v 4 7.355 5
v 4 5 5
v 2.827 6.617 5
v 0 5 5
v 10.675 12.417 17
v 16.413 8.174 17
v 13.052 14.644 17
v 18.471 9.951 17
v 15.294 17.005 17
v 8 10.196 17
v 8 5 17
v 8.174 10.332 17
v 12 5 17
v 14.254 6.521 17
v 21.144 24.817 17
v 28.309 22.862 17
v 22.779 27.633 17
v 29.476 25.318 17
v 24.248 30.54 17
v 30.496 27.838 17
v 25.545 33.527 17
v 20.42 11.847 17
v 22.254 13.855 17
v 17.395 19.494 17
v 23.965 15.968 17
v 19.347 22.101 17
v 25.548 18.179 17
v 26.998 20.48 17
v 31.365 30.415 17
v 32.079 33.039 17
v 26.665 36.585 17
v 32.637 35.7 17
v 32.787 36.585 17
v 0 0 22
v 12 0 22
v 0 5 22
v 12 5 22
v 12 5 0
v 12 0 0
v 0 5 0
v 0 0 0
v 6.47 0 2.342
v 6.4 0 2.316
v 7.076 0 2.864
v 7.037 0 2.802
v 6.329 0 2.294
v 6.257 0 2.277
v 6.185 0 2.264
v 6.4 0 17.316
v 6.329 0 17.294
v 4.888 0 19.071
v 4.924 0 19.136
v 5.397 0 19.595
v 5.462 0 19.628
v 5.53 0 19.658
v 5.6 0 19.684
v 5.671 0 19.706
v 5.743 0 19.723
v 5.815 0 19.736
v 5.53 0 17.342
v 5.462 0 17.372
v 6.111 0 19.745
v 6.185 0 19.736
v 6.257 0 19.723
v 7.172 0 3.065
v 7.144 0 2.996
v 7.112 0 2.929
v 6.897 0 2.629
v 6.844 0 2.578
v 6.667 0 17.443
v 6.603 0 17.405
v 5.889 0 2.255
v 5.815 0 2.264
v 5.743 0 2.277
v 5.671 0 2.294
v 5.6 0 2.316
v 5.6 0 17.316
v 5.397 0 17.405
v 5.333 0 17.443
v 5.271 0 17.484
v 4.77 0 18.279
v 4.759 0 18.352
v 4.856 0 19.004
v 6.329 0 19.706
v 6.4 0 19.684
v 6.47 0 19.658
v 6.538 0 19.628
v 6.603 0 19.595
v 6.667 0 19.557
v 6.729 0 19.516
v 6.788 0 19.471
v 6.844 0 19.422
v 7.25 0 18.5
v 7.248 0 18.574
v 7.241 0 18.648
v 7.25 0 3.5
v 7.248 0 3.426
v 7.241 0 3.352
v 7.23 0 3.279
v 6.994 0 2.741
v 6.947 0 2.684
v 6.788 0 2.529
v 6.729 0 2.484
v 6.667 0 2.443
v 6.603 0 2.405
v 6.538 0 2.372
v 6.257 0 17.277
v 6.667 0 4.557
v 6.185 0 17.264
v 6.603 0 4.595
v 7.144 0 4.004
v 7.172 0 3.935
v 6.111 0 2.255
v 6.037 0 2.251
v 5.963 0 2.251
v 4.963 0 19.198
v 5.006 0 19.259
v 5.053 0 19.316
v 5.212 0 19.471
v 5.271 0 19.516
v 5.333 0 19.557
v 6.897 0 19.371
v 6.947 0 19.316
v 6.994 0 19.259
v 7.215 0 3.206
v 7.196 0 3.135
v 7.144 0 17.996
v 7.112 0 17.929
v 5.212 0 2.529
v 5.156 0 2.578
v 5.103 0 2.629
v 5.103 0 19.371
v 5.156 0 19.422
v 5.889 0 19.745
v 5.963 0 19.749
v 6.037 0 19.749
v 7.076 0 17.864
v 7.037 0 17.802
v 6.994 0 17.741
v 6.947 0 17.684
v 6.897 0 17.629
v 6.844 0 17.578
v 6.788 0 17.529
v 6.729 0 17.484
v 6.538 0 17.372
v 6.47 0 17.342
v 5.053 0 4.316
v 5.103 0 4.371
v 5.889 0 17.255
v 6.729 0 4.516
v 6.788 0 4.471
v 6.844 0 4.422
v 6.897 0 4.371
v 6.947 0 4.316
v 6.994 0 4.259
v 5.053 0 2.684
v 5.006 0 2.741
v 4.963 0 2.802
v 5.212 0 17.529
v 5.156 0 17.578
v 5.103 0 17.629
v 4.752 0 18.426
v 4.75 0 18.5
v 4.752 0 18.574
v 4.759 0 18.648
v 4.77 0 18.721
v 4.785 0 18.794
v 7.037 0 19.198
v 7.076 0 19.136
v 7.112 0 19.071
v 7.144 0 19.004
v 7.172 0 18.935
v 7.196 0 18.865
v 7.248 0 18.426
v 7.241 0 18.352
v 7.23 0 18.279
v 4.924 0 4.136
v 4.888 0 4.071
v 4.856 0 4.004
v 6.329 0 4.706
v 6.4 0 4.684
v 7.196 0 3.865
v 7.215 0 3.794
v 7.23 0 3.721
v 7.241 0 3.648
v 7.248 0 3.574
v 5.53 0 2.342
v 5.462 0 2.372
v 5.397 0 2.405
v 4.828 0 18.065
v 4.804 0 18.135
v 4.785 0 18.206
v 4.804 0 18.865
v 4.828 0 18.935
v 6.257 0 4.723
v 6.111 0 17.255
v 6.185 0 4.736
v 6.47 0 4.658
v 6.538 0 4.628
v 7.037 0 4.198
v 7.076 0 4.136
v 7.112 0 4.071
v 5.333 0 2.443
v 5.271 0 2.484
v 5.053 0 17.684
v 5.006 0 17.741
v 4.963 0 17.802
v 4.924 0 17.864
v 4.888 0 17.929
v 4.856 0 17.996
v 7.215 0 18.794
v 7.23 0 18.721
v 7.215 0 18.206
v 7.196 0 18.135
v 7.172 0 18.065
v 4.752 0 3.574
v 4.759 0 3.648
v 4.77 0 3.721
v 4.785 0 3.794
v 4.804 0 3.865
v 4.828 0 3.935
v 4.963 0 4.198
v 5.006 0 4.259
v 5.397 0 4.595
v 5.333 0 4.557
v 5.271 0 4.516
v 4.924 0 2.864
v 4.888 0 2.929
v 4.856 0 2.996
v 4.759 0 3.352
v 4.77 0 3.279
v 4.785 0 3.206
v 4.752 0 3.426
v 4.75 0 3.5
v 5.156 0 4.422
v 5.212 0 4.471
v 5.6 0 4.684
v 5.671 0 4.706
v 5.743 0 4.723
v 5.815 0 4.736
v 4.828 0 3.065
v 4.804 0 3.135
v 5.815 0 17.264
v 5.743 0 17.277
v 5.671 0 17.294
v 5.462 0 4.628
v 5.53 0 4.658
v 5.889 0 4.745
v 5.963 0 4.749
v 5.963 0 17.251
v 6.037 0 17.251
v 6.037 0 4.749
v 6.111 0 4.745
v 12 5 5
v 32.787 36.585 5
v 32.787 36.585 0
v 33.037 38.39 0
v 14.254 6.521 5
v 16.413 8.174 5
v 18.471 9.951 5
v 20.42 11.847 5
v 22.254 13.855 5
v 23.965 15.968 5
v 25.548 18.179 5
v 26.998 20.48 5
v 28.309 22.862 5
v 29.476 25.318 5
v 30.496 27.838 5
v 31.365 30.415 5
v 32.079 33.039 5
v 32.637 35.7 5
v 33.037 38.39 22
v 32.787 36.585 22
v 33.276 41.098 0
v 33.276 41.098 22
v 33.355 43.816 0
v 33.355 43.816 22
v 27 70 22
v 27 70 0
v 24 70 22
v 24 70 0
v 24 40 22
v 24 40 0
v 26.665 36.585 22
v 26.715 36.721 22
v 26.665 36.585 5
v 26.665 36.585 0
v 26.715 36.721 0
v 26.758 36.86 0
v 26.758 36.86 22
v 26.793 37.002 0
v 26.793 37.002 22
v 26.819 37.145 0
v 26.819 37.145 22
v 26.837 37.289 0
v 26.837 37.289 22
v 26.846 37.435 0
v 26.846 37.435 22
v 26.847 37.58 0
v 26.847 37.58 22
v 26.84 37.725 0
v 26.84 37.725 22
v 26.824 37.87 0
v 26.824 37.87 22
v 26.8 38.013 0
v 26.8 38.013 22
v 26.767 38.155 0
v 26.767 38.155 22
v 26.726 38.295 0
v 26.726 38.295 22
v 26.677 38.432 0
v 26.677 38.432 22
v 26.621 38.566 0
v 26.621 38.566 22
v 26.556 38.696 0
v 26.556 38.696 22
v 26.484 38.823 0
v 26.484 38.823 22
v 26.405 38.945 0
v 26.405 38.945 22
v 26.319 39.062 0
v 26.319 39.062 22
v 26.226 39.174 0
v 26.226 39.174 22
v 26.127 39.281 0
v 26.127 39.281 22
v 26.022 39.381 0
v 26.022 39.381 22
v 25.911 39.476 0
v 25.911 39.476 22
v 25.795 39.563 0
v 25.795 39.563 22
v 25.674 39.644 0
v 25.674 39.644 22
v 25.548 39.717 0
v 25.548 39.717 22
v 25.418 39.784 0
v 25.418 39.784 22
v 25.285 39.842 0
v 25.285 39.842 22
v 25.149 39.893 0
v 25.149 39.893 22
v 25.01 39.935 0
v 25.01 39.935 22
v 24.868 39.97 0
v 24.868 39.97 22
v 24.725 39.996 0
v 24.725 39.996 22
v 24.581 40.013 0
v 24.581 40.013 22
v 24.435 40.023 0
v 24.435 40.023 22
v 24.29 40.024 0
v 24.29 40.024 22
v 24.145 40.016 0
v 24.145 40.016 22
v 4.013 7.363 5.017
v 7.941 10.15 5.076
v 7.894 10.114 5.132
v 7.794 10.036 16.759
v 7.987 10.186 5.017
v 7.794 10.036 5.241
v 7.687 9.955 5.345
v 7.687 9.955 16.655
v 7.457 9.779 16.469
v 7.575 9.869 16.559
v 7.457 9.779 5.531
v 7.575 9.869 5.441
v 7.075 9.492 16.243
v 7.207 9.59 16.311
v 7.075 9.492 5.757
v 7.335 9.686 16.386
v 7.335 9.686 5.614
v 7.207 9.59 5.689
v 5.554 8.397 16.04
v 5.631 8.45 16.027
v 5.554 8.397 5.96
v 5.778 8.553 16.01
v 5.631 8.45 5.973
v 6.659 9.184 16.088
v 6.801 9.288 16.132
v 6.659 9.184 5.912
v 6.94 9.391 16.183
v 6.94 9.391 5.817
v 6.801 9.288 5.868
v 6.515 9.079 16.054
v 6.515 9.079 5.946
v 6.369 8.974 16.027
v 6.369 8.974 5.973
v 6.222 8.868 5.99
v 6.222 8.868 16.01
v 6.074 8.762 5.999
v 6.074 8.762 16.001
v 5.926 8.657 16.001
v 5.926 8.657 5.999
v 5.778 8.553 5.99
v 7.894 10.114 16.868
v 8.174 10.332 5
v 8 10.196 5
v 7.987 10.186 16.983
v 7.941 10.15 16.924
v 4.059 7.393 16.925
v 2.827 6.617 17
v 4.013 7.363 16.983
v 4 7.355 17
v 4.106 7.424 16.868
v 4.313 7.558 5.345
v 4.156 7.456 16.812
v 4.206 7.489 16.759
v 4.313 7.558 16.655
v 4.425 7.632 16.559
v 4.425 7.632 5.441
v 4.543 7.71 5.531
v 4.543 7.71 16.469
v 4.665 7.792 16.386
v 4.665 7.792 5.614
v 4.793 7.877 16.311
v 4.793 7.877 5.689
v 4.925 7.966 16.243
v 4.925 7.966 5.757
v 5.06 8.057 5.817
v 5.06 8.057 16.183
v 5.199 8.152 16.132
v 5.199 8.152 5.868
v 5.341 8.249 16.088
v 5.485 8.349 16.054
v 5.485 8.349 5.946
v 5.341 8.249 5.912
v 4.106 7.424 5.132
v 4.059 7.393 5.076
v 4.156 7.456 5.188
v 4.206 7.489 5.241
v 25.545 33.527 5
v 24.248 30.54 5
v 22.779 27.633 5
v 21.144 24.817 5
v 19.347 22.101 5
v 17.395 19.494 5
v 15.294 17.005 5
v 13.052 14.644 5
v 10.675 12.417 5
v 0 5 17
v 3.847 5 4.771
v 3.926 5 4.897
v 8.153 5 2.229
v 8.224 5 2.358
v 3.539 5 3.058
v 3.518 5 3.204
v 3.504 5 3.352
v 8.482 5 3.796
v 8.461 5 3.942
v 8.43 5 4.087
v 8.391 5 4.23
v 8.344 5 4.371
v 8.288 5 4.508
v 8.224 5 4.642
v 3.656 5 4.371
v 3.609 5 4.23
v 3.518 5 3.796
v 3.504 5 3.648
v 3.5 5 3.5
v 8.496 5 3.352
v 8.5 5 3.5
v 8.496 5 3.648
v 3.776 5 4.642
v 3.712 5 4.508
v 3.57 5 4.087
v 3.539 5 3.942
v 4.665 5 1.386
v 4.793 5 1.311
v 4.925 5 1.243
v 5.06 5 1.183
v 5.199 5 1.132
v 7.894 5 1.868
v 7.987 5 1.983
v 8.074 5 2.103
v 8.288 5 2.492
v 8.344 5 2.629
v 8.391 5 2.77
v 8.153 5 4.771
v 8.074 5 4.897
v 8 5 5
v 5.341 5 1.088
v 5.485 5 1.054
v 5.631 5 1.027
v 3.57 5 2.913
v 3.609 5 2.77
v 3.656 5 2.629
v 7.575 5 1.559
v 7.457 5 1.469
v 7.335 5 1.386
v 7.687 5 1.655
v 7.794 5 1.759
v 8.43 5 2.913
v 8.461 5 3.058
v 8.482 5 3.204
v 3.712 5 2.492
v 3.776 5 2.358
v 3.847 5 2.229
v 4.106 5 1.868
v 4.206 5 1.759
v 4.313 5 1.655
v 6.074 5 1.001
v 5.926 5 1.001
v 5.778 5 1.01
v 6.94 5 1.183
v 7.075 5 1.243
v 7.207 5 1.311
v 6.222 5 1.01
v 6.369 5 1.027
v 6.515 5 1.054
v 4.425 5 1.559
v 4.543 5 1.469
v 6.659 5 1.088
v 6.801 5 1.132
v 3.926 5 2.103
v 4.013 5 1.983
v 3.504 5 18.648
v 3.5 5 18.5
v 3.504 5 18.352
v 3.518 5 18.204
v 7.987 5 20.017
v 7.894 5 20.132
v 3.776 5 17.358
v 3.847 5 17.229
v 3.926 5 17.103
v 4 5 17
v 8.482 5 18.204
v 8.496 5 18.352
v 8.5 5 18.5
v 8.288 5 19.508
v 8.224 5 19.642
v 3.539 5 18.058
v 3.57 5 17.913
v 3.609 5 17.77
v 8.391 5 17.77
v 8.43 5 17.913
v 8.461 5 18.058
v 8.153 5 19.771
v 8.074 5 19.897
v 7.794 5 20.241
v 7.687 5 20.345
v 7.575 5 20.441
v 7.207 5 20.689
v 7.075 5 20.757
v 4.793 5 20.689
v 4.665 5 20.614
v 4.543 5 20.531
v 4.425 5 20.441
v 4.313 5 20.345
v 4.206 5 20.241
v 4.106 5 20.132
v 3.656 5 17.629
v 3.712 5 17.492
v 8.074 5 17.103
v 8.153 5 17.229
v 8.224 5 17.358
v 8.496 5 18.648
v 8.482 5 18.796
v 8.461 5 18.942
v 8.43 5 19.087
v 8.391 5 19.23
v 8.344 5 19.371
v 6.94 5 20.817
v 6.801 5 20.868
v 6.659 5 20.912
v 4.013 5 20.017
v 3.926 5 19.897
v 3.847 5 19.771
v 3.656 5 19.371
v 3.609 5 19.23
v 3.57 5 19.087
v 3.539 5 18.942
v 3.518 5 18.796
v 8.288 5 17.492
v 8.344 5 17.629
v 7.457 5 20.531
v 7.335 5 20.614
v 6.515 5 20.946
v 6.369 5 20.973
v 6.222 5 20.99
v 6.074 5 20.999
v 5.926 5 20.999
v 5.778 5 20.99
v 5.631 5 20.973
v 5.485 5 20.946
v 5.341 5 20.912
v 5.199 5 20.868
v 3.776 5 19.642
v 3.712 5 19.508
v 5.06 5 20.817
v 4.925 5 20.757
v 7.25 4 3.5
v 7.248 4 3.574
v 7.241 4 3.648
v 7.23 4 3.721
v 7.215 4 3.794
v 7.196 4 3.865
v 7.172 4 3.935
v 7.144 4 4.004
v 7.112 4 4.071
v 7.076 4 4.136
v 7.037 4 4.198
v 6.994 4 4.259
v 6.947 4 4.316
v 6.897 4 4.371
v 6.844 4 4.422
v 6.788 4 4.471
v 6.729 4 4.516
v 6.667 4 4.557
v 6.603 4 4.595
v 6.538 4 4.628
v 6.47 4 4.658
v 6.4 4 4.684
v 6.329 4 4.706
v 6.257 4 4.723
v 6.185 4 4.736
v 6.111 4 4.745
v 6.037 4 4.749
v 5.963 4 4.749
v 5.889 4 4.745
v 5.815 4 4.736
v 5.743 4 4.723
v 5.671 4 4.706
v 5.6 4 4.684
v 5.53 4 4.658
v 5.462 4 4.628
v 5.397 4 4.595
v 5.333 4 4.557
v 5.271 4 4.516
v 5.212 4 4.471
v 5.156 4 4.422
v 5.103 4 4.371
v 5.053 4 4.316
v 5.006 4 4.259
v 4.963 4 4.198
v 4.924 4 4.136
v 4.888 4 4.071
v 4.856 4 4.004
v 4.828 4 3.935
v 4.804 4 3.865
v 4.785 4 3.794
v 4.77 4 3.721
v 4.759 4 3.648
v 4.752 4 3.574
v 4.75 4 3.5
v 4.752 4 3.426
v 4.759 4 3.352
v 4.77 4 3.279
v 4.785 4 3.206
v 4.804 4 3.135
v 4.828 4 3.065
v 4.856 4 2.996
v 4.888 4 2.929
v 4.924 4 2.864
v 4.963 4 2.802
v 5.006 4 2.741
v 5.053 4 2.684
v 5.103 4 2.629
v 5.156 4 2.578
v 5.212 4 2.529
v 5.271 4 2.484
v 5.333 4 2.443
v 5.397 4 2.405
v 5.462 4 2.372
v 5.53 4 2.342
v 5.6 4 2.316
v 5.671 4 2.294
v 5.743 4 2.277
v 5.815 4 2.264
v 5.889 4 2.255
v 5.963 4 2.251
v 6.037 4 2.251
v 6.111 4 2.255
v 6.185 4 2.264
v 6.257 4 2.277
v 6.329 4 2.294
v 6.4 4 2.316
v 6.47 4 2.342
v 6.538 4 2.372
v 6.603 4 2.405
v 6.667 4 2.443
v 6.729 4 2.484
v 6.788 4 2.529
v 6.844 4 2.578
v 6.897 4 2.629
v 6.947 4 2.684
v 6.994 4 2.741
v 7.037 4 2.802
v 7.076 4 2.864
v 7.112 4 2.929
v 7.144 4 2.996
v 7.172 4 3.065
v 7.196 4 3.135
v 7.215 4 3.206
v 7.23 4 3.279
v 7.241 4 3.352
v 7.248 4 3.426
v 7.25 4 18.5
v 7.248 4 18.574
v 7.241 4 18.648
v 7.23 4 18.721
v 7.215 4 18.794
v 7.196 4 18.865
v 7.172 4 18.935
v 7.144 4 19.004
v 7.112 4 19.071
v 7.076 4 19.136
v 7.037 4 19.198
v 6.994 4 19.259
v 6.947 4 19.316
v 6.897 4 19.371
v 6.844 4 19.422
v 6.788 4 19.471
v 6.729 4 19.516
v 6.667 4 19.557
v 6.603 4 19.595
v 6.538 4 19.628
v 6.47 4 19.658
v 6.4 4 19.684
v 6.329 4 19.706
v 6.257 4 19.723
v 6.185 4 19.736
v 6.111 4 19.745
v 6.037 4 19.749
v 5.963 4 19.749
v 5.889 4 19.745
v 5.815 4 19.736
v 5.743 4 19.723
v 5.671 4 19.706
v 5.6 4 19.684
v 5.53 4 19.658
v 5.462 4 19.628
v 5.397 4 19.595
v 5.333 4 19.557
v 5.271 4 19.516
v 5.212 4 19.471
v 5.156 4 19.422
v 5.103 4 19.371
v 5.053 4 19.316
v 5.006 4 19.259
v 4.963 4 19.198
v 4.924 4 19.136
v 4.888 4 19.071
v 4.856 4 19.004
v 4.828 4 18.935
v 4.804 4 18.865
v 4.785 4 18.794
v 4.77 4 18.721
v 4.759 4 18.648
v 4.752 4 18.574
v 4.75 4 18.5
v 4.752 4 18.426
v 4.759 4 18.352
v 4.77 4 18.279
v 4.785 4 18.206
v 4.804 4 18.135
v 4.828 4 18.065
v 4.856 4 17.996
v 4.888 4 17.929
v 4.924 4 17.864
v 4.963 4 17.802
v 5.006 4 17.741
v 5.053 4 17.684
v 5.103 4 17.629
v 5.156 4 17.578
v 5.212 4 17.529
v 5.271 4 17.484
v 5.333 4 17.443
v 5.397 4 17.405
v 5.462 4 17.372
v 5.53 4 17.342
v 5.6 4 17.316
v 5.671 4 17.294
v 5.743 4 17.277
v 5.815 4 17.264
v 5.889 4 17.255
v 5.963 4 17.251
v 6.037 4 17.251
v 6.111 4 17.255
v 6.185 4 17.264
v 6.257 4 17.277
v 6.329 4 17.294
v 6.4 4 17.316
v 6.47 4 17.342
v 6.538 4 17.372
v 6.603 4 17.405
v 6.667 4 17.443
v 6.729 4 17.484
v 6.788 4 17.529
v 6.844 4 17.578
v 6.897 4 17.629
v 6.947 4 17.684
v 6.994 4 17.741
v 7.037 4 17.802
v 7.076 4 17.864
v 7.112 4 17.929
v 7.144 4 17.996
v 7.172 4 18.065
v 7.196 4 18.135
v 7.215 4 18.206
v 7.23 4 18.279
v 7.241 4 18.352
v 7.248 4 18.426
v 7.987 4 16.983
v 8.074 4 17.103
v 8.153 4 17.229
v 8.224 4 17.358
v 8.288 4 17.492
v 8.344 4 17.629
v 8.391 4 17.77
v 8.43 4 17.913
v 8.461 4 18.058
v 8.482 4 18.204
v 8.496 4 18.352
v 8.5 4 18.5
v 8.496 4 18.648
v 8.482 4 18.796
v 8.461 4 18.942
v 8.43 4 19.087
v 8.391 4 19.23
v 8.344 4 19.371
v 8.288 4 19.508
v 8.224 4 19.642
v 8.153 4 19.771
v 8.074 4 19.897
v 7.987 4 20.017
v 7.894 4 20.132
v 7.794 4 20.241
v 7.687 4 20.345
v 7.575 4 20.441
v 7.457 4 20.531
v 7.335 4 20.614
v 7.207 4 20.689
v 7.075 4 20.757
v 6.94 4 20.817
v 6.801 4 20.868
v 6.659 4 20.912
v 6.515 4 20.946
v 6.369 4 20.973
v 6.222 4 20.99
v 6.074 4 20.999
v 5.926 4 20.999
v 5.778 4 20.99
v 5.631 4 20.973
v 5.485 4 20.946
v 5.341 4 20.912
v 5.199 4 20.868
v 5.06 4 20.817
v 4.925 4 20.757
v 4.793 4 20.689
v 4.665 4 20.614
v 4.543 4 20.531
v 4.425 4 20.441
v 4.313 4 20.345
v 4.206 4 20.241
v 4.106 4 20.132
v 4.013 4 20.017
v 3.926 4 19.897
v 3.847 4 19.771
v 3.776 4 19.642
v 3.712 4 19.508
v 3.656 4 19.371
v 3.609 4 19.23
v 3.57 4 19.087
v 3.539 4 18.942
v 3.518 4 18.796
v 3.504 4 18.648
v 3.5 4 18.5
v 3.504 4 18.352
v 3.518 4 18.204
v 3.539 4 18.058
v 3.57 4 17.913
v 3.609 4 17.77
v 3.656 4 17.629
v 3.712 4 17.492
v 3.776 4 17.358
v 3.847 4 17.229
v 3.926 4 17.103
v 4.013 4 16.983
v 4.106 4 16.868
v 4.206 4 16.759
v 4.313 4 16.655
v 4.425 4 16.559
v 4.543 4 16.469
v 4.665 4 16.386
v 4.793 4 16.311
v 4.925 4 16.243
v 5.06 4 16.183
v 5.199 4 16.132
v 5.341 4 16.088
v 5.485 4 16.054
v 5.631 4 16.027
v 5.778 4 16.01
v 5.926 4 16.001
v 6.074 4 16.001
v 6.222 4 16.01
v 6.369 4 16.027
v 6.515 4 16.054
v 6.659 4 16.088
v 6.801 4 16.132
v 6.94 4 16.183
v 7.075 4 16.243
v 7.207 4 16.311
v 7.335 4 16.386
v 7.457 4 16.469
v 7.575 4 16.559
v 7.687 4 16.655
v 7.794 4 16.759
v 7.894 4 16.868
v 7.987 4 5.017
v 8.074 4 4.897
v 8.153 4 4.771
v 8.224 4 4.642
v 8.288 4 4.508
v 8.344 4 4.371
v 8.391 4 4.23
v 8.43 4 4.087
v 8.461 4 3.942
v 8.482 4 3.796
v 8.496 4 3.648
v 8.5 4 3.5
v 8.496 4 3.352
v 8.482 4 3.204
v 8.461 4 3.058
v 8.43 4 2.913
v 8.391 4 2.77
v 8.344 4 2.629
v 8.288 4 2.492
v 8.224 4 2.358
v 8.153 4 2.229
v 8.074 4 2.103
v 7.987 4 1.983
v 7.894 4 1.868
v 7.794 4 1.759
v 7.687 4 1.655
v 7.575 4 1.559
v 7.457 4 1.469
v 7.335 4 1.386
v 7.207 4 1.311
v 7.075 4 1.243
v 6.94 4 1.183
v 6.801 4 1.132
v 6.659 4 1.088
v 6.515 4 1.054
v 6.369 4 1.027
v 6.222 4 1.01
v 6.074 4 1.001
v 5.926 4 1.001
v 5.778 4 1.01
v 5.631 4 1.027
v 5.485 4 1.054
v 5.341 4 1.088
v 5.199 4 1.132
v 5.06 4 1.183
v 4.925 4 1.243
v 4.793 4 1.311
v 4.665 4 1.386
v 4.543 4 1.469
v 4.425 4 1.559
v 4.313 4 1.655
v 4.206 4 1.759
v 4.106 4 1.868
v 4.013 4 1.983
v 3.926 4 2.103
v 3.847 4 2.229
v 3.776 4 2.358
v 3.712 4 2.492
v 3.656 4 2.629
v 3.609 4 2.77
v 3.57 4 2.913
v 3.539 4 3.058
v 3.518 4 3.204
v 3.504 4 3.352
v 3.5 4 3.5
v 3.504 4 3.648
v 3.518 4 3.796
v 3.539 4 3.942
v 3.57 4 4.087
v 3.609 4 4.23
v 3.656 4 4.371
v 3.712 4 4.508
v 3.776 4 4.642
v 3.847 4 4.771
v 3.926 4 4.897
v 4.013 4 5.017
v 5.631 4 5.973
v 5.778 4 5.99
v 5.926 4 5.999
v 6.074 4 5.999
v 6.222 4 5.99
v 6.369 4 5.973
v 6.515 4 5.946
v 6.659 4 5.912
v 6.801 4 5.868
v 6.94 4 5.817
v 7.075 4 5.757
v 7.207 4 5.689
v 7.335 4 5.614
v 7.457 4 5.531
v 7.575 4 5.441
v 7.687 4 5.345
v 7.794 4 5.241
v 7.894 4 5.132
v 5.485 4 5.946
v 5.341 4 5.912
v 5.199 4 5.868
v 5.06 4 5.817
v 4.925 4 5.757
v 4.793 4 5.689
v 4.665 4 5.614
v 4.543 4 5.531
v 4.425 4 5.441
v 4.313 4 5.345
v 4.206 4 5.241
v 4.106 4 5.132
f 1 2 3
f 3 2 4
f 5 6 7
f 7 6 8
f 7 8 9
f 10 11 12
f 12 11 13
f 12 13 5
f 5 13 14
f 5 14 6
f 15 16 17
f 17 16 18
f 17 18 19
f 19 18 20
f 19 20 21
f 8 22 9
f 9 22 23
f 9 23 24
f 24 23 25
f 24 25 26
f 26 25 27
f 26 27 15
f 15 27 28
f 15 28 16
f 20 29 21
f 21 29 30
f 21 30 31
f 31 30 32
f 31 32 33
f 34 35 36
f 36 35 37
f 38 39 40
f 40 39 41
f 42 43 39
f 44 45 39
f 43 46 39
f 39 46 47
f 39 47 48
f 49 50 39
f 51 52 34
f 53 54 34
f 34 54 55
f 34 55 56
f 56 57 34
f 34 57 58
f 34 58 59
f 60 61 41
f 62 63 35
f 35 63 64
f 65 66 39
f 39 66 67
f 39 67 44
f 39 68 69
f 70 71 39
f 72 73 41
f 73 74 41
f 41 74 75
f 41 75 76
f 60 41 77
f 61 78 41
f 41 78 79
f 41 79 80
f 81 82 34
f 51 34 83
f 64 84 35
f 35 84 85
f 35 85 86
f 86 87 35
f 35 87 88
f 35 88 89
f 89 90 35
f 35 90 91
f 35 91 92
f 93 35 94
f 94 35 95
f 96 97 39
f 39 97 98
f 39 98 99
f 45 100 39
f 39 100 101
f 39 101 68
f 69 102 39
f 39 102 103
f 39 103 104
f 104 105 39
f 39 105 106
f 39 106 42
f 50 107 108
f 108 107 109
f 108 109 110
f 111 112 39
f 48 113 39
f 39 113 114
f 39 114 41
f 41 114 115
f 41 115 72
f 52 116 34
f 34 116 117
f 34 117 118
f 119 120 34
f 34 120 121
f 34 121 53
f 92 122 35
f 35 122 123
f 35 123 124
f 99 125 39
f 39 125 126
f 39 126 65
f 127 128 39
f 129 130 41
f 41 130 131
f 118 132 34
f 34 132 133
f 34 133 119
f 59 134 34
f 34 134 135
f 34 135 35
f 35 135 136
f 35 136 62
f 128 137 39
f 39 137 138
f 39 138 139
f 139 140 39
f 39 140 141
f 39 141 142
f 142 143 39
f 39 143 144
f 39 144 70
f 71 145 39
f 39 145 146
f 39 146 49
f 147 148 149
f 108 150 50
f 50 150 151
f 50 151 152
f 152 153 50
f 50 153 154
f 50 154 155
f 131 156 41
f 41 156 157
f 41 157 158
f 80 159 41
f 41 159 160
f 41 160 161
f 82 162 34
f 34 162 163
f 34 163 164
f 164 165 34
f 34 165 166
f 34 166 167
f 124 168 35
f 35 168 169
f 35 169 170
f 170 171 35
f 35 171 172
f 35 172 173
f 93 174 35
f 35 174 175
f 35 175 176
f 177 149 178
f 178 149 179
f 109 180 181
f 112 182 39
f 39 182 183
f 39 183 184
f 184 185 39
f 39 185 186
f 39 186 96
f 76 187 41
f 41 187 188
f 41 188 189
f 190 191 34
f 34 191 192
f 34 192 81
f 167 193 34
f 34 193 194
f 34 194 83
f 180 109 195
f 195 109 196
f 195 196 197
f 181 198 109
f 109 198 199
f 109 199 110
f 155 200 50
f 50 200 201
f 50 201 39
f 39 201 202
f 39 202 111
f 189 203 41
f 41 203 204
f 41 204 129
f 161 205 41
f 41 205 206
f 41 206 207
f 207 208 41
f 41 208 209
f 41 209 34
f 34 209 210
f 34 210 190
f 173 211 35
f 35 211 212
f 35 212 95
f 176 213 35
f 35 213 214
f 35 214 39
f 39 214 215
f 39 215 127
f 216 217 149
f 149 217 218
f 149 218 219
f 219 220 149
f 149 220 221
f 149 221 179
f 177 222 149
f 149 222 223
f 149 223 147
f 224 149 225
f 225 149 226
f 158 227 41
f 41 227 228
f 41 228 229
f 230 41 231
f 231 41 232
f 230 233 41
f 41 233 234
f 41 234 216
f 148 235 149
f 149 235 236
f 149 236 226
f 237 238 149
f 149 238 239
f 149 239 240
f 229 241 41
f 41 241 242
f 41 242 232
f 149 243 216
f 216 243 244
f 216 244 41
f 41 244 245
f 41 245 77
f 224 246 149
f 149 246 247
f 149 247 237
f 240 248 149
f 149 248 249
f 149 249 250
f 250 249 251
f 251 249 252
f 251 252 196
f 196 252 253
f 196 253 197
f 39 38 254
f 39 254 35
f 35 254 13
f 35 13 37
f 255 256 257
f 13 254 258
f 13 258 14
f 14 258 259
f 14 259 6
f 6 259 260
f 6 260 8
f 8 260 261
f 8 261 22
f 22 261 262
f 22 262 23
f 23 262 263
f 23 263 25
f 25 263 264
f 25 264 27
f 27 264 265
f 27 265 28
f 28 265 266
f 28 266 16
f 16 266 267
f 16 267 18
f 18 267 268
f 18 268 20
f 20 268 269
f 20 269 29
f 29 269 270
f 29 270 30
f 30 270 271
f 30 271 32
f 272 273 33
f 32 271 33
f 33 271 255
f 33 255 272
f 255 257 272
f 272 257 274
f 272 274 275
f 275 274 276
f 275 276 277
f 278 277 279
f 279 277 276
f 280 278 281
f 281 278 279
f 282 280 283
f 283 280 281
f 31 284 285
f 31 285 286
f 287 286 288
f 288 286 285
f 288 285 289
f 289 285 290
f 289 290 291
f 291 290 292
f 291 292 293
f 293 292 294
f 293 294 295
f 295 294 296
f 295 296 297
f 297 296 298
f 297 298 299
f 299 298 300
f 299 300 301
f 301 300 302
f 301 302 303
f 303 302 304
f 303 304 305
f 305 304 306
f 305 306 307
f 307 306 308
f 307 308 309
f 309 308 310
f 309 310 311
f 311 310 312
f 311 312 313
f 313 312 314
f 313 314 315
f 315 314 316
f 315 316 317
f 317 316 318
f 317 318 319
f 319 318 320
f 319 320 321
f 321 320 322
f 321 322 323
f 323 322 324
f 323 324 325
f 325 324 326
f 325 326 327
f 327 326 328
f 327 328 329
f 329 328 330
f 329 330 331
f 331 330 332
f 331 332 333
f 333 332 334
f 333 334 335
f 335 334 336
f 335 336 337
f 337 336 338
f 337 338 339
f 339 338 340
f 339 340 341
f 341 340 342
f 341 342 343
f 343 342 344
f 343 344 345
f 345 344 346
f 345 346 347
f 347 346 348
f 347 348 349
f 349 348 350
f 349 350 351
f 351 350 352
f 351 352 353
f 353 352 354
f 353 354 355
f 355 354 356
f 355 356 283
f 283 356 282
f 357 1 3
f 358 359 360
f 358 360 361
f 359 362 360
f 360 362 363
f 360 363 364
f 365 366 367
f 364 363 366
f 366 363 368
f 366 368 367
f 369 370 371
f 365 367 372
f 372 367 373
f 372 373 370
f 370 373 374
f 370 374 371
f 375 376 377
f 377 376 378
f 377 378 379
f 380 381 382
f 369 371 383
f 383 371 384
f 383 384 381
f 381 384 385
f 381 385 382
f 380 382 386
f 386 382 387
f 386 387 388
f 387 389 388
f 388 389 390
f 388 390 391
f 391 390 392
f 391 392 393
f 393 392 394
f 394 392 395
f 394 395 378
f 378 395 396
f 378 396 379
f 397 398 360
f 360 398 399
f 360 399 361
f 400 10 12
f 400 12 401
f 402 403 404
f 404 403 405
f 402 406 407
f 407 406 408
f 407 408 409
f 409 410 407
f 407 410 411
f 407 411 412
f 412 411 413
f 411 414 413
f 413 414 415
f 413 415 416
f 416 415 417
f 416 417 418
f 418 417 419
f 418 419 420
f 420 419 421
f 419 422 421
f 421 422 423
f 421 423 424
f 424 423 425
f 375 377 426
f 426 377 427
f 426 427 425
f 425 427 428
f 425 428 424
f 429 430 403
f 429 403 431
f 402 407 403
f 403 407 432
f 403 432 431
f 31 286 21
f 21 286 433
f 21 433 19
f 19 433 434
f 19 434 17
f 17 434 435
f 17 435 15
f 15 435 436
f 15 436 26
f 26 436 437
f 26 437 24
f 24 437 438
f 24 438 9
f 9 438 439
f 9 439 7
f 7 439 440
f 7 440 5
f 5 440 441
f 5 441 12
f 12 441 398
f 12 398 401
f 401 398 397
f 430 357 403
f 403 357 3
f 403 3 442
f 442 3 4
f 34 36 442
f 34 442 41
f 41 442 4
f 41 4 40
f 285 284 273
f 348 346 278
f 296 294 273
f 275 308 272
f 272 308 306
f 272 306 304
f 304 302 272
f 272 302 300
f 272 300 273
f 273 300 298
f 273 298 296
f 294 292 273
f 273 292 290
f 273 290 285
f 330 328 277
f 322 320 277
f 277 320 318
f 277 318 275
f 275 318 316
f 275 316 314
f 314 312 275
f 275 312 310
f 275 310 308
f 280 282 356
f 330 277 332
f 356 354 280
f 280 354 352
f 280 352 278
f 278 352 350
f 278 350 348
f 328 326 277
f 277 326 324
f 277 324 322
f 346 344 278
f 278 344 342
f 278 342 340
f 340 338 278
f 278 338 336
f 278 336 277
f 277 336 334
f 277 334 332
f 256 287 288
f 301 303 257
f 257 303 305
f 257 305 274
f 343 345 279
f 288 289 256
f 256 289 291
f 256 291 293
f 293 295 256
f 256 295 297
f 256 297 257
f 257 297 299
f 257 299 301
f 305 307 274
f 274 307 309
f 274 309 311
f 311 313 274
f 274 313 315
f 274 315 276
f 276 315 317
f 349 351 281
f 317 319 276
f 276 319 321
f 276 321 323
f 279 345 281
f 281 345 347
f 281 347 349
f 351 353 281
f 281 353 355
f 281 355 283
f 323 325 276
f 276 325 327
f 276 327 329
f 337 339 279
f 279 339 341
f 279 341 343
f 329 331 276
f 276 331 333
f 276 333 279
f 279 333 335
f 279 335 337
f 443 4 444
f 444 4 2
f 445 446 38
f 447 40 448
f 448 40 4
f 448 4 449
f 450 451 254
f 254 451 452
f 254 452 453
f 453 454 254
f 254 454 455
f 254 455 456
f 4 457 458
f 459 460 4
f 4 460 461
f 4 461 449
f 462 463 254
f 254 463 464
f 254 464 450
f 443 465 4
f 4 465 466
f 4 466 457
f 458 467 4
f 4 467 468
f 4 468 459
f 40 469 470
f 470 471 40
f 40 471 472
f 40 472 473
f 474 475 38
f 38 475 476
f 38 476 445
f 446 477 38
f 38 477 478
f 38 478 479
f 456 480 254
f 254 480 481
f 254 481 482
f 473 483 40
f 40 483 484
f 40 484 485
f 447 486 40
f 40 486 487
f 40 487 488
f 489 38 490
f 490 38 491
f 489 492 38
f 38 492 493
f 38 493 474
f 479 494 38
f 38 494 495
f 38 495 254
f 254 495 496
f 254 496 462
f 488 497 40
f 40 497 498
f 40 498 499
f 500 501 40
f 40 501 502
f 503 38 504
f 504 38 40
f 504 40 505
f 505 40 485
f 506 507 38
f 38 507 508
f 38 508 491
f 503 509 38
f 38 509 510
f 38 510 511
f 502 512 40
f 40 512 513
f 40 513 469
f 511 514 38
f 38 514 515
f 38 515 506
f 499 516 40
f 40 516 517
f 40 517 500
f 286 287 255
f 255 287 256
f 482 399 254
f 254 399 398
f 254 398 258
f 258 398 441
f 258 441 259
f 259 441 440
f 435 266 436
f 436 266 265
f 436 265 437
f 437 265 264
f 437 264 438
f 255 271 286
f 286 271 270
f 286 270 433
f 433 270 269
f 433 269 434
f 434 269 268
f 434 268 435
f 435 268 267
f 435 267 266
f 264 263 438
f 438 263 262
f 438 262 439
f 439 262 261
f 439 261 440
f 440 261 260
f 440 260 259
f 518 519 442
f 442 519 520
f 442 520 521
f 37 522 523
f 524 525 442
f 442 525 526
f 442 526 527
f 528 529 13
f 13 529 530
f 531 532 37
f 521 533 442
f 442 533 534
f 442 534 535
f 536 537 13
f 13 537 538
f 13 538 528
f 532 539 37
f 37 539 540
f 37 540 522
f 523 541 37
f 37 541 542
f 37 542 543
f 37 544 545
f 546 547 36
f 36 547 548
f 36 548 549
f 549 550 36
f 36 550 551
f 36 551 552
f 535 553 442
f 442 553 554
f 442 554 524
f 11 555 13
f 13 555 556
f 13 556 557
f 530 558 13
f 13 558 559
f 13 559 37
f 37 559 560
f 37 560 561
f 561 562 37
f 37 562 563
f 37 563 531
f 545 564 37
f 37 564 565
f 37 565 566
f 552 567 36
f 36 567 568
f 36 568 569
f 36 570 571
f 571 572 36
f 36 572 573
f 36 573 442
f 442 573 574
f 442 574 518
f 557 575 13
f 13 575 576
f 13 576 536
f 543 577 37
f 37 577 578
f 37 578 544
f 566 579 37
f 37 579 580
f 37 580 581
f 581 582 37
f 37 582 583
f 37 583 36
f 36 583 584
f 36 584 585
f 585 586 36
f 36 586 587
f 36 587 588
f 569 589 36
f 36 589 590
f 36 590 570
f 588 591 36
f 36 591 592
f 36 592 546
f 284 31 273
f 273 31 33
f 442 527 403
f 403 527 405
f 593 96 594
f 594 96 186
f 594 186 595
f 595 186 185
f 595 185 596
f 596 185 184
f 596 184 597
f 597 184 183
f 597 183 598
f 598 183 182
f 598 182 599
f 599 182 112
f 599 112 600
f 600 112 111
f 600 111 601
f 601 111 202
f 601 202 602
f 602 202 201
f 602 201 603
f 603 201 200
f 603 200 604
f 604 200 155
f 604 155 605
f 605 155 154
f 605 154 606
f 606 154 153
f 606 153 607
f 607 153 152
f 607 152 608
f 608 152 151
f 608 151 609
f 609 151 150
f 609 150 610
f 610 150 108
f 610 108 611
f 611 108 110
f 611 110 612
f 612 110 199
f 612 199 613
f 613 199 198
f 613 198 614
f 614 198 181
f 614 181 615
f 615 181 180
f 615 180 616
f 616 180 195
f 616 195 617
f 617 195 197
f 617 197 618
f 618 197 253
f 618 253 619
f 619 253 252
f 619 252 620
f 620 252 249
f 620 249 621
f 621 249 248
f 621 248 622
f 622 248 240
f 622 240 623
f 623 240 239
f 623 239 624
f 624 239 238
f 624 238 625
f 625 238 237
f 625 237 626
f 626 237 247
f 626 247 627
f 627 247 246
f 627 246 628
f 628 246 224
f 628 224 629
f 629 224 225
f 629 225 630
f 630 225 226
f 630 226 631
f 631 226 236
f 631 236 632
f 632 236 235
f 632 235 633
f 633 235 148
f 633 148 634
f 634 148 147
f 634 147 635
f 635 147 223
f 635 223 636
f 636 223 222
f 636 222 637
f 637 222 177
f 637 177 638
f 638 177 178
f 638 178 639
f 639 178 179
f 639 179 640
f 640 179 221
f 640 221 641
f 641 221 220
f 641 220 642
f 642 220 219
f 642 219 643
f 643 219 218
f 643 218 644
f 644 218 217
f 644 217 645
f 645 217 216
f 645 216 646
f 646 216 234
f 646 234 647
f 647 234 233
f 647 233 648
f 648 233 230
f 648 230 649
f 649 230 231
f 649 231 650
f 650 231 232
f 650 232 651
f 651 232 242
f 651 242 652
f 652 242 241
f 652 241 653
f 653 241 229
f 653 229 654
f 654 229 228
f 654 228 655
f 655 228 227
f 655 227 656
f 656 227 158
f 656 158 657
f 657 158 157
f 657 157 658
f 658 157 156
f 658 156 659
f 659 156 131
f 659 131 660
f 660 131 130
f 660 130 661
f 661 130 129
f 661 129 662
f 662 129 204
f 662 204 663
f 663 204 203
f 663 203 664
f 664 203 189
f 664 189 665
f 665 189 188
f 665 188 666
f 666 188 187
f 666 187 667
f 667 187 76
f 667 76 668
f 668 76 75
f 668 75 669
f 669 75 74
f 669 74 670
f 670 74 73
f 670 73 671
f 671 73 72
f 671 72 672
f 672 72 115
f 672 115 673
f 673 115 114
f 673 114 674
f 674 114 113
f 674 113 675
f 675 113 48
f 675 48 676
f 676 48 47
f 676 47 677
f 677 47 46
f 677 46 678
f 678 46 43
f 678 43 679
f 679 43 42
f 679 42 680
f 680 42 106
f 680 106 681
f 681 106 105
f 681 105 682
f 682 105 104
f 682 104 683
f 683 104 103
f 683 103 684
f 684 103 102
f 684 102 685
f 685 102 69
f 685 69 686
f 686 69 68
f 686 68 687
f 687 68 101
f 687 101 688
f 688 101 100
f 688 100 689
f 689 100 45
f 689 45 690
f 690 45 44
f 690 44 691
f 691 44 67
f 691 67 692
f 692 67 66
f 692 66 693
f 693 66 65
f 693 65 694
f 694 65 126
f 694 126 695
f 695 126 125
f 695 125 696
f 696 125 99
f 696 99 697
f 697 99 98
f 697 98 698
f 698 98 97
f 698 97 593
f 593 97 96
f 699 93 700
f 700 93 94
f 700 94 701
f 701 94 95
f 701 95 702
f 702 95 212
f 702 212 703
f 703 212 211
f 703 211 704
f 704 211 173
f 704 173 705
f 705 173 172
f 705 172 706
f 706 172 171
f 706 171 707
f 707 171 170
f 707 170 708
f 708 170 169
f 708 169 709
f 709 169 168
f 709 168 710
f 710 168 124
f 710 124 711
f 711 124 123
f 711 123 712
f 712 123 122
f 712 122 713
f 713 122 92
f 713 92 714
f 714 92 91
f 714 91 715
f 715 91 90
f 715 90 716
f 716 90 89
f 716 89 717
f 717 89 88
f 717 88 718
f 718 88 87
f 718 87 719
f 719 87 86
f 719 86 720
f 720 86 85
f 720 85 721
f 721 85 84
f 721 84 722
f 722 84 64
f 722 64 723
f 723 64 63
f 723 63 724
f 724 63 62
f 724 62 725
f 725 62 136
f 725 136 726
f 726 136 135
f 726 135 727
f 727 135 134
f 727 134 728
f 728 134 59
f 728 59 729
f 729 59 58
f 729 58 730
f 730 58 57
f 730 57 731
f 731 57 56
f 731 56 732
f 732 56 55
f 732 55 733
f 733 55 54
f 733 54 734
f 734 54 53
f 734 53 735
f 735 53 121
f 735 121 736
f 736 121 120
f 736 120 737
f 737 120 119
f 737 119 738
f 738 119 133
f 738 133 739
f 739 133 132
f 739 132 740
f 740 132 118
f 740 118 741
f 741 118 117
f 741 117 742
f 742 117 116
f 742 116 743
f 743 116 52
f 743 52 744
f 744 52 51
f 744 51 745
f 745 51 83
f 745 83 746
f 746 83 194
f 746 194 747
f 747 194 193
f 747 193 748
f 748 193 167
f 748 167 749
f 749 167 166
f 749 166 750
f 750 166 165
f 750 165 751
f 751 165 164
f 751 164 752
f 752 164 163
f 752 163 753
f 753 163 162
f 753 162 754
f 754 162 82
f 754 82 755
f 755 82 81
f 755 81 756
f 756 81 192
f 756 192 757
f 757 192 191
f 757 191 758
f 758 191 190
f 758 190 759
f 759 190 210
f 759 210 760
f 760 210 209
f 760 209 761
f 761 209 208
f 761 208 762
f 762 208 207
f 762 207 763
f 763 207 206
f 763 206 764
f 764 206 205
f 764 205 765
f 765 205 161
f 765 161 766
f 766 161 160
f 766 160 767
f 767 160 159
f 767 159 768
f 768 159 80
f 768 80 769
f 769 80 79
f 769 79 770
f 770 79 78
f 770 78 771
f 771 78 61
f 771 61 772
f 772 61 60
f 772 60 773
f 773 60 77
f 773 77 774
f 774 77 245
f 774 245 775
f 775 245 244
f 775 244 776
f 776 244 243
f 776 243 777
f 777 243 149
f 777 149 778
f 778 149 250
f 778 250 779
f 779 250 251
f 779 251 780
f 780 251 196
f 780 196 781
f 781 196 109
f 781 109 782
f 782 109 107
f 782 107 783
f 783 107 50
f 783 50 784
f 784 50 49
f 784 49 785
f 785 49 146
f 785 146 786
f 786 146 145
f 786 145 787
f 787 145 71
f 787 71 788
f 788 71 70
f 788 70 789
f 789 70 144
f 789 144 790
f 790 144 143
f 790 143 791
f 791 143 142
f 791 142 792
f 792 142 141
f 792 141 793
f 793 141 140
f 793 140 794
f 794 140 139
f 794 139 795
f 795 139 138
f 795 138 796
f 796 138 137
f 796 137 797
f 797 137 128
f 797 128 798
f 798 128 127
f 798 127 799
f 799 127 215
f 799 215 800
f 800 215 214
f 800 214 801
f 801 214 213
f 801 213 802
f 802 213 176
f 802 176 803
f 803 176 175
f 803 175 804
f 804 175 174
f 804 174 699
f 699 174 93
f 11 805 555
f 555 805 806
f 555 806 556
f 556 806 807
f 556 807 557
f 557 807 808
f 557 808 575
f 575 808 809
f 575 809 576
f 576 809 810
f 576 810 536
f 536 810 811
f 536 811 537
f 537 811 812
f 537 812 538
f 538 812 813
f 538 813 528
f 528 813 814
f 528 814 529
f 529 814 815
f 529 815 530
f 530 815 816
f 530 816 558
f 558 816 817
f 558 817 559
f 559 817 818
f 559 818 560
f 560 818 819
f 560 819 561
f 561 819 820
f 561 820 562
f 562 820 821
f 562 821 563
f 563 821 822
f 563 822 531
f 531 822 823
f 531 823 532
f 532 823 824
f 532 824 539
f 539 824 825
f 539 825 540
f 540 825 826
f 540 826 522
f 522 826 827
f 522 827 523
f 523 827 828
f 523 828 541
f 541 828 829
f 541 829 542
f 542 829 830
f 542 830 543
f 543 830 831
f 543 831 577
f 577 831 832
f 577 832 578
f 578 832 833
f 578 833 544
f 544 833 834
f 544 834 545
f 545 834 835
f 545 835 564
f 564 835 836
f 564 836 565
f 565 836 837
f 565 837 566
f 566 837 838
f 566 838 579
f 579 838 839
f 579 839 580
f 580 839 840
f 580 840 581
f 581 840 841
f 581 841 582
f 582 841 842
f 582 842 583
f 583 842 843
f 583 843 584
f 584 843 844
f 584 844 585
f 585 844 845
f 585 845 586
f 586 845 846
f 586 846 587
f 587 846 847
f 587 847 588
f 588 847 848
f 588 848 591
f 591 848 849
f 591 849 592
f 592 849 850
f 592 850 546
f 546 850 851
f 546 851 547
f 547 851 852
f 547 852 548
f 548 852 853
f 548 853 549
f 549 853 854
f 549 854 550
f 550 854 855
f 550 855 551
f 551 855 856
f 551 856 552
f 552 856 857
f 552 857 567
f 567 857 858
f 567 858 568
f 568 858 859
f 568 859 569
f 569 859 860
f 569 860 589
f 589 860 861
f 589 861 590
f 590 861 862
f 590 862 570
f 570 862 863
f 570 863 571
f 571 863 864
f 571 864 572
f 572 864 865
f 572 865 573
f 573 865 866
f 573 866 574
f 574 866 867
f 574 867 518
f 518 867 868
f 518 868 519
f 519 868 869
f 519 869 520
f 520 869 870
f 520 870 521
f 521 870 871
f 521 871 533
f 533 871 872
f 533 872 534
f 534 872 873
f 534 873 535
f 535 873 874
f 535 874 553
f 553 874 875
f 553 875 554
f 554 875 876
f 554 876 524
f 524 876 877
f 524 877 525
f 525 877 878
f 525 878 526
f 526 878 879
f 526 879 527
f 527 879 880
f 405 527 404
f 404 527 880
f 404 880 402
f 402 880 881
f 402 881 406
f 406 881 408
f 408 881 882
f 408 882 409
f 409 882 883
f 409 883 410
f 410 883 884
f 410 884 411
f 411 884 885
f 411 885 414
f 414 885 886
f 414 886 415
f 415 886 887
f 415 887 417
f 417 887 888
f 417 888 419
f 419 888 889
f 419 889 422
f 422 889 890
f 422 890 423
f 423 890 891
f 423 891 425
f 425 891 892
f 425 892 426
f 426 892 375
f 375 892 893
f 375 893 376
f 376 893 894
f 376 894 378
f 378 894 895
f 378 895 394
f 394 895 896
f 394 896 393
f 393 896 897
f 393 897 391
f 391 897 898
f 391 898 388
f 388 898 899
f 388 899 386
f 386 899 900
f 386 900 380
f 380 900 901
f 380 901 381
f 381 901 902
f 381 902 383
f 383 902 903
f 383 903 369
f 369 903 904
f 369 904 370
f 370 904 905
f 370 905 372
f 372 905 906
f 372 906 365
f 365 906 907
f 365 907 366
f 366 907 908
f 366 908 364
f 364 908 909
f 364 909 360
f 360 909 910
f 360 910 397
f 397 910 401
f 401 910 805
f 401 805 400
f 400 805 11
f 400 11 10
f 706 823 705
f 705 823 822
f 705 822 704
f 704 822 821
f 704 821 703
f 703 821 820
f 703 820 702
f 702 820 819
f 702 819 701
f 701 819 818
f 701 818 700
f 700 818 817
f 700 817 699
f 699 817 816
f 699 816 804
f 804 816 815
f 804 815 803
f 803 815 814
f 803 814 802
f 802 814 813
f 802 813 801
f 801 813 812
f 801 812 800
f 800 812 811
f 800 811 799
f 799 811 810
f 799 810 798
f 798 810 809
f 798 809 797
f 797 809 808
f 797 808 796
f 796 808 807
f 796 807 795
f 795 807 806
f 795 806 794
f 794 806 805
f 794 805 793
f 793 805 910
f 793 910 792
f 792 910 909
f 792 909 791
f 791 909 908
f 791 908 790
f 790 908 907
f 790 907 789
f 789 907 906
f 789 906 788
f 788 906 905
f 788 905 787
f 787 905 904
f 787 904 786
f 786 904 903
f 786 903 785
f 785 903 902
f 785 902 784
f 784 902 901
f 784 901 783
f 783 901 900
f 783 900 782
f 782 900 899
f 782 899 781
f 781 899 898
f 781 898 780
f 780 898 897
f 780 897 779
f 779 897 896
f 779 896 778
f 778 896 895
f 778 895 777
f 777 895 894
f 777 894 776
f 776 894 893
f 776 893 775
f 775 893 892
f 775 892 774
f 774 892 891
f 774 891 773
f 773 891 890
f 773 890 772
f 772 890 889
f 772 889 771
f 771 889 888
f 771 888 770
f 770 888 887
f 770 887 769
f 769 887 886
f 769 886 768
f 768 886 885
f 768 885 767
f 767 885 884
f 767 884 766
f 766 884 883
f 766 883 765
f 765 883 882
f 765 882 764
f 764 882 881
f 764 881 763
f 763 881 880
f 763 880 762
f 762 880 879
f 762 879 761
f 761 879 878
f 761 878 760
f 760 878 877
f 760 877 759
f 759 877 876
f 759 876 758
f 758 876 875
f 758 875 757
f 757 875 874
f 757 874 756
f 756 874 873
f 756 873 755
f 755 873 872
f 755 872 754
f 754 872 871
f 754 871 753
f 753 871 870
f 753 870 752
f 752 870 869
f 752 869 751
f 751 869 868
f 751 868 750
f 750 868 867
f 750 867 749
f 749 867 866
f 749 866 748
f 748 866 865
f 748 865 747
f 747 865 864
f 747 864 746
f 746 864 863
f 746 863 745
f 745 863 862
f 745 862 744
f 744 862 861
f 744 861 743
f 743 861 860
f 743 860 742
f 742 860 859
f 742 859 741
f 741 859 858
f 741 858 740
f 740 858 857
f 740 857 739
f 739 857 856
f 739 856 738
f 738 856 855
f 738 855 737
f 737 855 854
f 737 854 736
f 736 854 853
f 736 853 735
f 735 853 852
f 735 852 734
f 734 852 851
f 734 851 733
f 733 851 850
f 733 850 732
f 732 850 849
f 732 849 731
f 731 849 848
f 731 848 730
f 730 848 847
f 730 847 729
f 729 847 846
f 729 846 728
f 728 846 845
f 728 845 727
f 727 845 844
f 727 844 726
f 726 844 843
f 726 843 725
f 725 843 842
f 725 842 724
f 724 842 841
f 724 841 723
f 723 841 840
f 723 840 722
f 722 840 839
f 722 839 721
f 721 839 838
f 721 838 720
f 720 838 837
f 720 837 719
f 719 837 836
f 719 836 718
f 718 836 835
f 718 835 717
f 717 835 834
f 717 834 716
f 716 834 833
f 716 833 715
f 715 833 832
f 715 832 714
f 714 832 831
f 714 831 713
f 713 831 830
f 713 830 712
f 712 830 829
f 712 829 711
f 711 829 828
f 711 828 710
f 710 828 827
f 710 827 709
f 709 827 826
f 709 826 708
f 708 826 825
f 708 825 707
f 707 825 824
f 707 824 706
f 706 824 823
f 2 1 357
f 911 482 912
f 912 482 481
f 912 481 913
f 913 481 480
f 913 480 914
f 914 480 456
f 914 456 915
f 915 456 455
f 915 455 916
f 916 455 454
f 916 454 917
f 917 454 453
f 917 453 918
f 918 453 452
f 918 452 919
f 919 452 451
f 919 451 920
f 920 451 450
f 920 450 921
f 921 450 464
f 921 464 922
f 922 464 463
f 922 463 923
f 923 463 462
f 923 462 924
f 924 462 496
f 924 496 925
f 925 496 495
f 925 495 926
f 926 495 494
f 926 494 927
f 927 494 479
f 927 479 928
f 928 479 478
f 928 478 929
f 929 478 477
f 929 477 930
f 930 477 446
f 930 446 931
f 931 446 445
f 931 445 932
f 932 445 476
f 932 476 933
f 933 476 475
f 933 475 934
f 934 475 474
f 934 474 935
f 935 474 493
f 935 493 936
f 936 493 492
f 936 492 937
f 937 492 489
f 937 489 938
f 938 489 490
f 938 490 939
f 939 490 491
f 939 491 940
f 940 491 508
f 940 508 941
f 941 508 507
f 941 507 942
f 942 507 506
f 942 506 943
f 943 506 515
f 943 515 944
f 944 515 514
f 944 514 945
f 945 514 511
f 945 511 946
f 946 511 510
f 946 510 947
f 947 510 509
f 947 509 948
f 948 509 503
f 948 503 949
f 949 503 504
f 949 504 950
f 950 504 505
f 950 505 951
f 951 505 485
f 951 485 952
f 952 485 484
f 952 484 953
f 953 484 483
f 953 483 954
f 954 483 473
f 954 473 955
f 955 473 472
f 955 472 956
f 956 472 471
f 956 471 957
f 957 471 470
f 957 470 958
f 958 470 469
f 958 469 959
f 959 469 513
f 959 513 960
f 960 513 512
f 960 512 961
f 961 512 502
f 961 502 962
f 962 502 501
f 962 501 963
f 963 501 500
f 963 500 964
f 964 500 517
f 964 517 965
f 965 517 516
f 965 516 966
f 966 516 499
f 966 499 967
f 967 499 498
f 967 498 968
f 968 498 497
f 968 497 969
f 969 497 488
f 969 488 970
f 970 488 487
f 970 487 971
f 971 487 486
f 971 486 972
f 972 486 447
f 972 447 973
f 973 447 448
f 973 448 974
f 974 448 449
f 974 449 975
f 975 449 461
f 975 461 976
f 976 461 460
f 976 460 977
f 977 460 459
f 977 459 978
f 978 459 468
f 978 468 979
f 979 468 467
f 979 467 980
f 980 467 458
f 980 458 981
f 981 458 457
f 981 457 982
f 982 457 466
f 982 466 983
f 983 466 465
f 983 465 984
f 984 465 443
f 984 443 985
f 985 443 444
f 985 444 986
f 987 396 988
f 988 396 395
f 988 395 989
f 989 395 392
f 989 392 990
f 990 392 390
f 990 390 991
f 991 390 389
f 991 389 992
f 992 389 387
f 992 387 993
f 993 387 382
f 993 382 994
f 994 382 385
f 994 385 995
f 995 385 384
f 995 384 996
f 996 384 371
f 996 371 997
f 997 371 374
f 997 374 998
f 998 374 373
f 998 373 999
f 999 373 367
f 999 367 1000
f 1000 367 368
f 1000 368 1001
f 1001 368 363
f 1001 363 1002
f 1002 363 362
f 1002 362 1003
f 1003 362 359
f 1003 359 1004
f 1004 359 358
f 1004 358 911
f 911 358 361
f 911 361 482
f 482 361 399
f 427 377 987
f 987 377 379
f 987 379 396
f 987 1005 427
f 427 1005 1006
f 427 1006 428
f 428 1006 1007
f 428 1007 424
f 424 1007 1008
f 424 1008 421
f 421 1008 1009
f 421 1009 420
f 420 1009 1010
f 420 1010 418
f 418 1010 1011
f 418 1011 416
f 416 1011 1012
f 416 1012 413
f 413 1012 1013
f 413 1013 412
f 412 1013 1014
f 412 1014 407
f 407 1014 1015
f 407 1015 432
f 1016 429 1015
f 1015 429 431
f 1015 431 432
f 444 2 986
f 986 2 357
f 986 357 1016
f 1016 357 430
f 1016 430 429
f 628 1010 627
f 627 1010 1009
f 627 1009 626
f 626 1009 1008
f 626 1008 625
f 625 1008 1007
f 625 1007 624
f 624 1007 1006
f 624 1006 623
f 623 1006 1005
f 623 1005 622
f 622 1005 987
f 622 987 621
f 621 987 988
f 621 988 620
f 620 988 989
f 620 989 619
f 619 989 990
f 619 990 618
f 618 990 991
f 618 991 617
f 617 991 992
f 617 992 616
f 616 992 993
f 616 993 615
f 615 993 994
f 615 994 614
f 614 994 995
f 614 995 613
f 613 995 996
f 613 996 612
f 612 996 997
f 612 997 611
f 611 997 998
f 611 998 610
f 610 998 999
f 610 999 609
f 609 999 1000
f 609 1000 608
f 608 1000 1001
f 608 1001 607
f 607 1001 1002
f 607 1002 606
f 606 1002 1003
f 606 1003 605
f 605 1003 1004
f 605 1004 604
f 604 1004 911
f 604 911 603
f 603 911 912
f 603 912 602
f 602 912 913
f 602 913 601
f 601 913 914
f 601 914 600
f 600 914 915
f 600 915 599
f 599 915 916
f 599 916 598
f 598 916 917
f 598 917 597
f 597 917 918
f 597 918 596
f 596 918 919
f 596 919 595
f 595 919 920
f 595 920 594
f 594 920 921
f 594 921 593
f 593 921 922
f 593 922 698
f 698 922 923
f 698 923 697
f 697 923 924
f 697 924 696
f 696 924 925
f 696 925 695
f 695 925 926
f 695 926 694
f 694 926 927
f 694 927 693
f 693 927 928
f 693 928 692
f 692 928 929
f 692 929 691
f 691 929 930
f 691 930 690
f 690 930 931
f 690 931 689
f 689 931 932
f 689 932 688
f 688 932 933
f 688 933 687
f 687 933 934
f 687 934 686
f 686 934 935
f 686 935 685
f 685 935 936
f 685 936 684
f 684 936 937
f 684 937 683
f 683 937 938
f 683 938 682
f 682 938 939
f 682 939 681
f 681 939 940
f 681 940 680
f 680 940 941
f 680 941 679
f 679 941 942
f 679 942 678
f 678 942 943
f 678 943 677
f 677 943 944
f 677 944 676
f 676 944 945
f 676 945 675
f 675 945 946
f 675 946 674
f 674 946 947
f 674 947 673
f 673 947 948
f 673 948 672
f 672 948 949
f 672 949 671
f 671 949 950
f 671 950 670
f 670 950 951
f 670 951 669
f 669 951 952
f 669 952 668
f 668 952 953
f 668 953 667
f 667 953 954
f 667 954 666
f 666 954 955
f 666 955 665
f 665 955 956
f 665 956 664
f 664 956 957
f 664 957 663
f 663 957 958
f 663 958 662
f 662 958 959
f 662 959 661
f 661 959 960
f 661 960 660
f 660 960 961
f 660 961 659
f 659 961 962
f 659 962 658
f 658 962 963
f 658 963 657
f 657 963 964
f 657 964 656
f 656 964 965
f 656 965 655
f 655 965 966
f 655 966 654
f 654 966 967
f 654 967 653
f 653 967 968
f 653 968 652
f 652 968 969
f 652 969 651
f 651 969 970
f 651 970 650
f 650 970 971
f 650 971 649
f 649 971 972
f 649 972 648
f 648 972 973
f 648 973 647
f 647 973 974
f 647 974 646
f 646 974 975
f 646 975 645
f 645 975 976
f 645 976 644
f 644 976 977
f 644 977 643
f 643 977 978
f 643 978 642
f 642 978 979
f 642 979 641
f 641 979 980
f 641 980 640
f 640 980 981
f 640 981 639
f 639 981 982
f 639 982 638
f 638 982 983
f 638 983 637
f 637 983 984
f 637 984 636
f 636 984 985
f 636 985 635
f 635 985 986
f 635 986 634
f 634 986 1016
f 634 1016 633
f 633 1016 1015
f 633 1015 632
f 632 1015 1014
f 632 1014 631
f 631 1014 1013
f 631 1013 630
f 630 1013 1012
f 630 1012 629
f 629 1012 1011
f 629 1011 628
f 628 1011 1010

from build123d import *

# Parameters (mm, degrees)
BOSS_EXTRU_1_DEPTH      = 22
ENL_V_MAT_EXTRU_1_REACH = 35.355
ESQUISSE2_W             = 5
ESQUISSE2_H             = 31.584947586
ESQUISSE3_R             = 1.25
ENL_V_MAT_EXTRU_2_DEPTH = 4
ENL_V_MAT_EXTRU_3_REACH = 68
ESQUISSE5_R             = 2.5


with BuildPart() as part:
    # Esquisse1 → Boss.-Extru.1 (new body)
    with BuildSketch(Plane.XY):
        with BuildLine():
            Line((0, 0), (0, 5))
            ThreePointArc((0, 5), (16.362517736, 18.234357648), (26.664753317, 36.584947586))
            ThreePointArc((26.664753317, 36.584947586), (26.318927206, 39.062275696), (24, 40))
            Line((24, 40), (24, 70))
            Line((24, 70), (27, 70))
            Line((27, 70), (33.355191258, 43.816329185))
            ThreePointArc((33.355191258, 43.816329185), (27.670942171, 21.661025112), (12, 5))
            Line((12, 5), (12, 0))
            Line((12, 0), (0, 0))
        make_face()
    extrude(amount=BOSS_EXTRU_1_DEPTH)

    # Esquisse2 → Enlèv. mat.-Extru.1 (cut, up to next)
    with BuildSketch(Plane.ZY, mode=Mode.PRIVATE) as enl_v_mat_extru_1_sk1:
        with Locations((2.5, 20.792473793)):
            Rectangle(ESQUISSE2_W, ESQUISSE2_H)
    enl_v_mat_extru_1_tool1 = extrude(enl_v_mat_extru_1_sk1.sketch, amount=-ENL_V_MAT_EXTRU_1_REACH, mode=Mode.PRIVATE) & part.part
    add(enl_v_mat_extru_1_tool1.solids().sort_by_distance((0, 20.792474, 2.5))[0], mode=Mode.SUBTRACT)
    # Esquisse2 → Enlèv. mat.-Extru.1 (cut, up to next)
    with BuildSketch(Plane.ZY, mode=Mode.PRIVATE) as enl_v_mat_extru_1_sk2:
        with Locations((19.5, 20.792473793)):
            Rectangle(ESQUISSE2_W, ESQUISSE2_H)
    enl_v_mat_extru_1_tool2 = extrude(enl_v_mat_extru_1_sk2.sketch, amount=-ENL_V_MAT_EXTRU_1_REACH, mode=Mode.PRIVATE) & part.part
    add(enl_v_mat_extru_1_tool2.solids().sort_by_distance((0, 20.792474, 19.5))[0], mode=Mode.SUBTRACT)

    # Esquisse3 → Enlèv. mat.-Extru.2 (cut)
    with BuildSketch(Plane.XZ):
        with Locations((6, 18.5)):
            Circle(ESQUISSE3_R)
        with Locations((6, 3.5)):
            Circle(ESQUISSE3_R)
    extrude(amount=-ENL_V_MAT_EXTRU_2_DEPTH, mode=Mode.SUBTRACT)

    # Esquisse5 → Enlèv. mat.-Extru.3 (cut, up to next)
    with BuildSketch(Plane(origin=(0, 4, 0), x_dir=(-1, 0, 0), z_dir=(0, -1, 0)), mode=Mode.PRIVATE) as enl_v_mat_extru_3_sk1:
        with Locations((-6, -3.5)):
            Circle(ESQUISSE5_R)
    enl_v_mat_extru_3_tool1 = extrude(enl_v_mat_extru_3_sk1.sketch, amount=-ENL_V_MAT_EXTRU_3_REACH, mode=Mode.PRIVATE) & part.part
    add(enl_v_mat_extru_3_tool1.solids().sort_by_distance((6, 4, 3.5))[0], mode=Mode.SUBTRACT)
    # Esquisse5 → Enlèv. mat.-Extru.3 (cut, up to next)
    with BuildSketch(Plane(origin=(0, 4, 0), x_dir=(-1, 0, 0), z_dir=(0, -1, 0)), mode=Mode.PRIVATE) as enl_v_mat_extru_3_sk2:
        with Locations((-6, -18.5)):
            Circle(ESQUISSE5_R)
    enl_v_mat_extru_3_tool2 = extrude(enl_v_mat_extru_3_sk2.sketch, amount=-ENL_V_MAT_EXTRU_3_REACH, mode=Mode.PRIVATE) & part.part
    add(enl_v_mat_extru_3_tool2.solids().sort_by_distance((6, 4, 18.5))[0], mode=Mode.SUBTRACT)


solid = part.part
